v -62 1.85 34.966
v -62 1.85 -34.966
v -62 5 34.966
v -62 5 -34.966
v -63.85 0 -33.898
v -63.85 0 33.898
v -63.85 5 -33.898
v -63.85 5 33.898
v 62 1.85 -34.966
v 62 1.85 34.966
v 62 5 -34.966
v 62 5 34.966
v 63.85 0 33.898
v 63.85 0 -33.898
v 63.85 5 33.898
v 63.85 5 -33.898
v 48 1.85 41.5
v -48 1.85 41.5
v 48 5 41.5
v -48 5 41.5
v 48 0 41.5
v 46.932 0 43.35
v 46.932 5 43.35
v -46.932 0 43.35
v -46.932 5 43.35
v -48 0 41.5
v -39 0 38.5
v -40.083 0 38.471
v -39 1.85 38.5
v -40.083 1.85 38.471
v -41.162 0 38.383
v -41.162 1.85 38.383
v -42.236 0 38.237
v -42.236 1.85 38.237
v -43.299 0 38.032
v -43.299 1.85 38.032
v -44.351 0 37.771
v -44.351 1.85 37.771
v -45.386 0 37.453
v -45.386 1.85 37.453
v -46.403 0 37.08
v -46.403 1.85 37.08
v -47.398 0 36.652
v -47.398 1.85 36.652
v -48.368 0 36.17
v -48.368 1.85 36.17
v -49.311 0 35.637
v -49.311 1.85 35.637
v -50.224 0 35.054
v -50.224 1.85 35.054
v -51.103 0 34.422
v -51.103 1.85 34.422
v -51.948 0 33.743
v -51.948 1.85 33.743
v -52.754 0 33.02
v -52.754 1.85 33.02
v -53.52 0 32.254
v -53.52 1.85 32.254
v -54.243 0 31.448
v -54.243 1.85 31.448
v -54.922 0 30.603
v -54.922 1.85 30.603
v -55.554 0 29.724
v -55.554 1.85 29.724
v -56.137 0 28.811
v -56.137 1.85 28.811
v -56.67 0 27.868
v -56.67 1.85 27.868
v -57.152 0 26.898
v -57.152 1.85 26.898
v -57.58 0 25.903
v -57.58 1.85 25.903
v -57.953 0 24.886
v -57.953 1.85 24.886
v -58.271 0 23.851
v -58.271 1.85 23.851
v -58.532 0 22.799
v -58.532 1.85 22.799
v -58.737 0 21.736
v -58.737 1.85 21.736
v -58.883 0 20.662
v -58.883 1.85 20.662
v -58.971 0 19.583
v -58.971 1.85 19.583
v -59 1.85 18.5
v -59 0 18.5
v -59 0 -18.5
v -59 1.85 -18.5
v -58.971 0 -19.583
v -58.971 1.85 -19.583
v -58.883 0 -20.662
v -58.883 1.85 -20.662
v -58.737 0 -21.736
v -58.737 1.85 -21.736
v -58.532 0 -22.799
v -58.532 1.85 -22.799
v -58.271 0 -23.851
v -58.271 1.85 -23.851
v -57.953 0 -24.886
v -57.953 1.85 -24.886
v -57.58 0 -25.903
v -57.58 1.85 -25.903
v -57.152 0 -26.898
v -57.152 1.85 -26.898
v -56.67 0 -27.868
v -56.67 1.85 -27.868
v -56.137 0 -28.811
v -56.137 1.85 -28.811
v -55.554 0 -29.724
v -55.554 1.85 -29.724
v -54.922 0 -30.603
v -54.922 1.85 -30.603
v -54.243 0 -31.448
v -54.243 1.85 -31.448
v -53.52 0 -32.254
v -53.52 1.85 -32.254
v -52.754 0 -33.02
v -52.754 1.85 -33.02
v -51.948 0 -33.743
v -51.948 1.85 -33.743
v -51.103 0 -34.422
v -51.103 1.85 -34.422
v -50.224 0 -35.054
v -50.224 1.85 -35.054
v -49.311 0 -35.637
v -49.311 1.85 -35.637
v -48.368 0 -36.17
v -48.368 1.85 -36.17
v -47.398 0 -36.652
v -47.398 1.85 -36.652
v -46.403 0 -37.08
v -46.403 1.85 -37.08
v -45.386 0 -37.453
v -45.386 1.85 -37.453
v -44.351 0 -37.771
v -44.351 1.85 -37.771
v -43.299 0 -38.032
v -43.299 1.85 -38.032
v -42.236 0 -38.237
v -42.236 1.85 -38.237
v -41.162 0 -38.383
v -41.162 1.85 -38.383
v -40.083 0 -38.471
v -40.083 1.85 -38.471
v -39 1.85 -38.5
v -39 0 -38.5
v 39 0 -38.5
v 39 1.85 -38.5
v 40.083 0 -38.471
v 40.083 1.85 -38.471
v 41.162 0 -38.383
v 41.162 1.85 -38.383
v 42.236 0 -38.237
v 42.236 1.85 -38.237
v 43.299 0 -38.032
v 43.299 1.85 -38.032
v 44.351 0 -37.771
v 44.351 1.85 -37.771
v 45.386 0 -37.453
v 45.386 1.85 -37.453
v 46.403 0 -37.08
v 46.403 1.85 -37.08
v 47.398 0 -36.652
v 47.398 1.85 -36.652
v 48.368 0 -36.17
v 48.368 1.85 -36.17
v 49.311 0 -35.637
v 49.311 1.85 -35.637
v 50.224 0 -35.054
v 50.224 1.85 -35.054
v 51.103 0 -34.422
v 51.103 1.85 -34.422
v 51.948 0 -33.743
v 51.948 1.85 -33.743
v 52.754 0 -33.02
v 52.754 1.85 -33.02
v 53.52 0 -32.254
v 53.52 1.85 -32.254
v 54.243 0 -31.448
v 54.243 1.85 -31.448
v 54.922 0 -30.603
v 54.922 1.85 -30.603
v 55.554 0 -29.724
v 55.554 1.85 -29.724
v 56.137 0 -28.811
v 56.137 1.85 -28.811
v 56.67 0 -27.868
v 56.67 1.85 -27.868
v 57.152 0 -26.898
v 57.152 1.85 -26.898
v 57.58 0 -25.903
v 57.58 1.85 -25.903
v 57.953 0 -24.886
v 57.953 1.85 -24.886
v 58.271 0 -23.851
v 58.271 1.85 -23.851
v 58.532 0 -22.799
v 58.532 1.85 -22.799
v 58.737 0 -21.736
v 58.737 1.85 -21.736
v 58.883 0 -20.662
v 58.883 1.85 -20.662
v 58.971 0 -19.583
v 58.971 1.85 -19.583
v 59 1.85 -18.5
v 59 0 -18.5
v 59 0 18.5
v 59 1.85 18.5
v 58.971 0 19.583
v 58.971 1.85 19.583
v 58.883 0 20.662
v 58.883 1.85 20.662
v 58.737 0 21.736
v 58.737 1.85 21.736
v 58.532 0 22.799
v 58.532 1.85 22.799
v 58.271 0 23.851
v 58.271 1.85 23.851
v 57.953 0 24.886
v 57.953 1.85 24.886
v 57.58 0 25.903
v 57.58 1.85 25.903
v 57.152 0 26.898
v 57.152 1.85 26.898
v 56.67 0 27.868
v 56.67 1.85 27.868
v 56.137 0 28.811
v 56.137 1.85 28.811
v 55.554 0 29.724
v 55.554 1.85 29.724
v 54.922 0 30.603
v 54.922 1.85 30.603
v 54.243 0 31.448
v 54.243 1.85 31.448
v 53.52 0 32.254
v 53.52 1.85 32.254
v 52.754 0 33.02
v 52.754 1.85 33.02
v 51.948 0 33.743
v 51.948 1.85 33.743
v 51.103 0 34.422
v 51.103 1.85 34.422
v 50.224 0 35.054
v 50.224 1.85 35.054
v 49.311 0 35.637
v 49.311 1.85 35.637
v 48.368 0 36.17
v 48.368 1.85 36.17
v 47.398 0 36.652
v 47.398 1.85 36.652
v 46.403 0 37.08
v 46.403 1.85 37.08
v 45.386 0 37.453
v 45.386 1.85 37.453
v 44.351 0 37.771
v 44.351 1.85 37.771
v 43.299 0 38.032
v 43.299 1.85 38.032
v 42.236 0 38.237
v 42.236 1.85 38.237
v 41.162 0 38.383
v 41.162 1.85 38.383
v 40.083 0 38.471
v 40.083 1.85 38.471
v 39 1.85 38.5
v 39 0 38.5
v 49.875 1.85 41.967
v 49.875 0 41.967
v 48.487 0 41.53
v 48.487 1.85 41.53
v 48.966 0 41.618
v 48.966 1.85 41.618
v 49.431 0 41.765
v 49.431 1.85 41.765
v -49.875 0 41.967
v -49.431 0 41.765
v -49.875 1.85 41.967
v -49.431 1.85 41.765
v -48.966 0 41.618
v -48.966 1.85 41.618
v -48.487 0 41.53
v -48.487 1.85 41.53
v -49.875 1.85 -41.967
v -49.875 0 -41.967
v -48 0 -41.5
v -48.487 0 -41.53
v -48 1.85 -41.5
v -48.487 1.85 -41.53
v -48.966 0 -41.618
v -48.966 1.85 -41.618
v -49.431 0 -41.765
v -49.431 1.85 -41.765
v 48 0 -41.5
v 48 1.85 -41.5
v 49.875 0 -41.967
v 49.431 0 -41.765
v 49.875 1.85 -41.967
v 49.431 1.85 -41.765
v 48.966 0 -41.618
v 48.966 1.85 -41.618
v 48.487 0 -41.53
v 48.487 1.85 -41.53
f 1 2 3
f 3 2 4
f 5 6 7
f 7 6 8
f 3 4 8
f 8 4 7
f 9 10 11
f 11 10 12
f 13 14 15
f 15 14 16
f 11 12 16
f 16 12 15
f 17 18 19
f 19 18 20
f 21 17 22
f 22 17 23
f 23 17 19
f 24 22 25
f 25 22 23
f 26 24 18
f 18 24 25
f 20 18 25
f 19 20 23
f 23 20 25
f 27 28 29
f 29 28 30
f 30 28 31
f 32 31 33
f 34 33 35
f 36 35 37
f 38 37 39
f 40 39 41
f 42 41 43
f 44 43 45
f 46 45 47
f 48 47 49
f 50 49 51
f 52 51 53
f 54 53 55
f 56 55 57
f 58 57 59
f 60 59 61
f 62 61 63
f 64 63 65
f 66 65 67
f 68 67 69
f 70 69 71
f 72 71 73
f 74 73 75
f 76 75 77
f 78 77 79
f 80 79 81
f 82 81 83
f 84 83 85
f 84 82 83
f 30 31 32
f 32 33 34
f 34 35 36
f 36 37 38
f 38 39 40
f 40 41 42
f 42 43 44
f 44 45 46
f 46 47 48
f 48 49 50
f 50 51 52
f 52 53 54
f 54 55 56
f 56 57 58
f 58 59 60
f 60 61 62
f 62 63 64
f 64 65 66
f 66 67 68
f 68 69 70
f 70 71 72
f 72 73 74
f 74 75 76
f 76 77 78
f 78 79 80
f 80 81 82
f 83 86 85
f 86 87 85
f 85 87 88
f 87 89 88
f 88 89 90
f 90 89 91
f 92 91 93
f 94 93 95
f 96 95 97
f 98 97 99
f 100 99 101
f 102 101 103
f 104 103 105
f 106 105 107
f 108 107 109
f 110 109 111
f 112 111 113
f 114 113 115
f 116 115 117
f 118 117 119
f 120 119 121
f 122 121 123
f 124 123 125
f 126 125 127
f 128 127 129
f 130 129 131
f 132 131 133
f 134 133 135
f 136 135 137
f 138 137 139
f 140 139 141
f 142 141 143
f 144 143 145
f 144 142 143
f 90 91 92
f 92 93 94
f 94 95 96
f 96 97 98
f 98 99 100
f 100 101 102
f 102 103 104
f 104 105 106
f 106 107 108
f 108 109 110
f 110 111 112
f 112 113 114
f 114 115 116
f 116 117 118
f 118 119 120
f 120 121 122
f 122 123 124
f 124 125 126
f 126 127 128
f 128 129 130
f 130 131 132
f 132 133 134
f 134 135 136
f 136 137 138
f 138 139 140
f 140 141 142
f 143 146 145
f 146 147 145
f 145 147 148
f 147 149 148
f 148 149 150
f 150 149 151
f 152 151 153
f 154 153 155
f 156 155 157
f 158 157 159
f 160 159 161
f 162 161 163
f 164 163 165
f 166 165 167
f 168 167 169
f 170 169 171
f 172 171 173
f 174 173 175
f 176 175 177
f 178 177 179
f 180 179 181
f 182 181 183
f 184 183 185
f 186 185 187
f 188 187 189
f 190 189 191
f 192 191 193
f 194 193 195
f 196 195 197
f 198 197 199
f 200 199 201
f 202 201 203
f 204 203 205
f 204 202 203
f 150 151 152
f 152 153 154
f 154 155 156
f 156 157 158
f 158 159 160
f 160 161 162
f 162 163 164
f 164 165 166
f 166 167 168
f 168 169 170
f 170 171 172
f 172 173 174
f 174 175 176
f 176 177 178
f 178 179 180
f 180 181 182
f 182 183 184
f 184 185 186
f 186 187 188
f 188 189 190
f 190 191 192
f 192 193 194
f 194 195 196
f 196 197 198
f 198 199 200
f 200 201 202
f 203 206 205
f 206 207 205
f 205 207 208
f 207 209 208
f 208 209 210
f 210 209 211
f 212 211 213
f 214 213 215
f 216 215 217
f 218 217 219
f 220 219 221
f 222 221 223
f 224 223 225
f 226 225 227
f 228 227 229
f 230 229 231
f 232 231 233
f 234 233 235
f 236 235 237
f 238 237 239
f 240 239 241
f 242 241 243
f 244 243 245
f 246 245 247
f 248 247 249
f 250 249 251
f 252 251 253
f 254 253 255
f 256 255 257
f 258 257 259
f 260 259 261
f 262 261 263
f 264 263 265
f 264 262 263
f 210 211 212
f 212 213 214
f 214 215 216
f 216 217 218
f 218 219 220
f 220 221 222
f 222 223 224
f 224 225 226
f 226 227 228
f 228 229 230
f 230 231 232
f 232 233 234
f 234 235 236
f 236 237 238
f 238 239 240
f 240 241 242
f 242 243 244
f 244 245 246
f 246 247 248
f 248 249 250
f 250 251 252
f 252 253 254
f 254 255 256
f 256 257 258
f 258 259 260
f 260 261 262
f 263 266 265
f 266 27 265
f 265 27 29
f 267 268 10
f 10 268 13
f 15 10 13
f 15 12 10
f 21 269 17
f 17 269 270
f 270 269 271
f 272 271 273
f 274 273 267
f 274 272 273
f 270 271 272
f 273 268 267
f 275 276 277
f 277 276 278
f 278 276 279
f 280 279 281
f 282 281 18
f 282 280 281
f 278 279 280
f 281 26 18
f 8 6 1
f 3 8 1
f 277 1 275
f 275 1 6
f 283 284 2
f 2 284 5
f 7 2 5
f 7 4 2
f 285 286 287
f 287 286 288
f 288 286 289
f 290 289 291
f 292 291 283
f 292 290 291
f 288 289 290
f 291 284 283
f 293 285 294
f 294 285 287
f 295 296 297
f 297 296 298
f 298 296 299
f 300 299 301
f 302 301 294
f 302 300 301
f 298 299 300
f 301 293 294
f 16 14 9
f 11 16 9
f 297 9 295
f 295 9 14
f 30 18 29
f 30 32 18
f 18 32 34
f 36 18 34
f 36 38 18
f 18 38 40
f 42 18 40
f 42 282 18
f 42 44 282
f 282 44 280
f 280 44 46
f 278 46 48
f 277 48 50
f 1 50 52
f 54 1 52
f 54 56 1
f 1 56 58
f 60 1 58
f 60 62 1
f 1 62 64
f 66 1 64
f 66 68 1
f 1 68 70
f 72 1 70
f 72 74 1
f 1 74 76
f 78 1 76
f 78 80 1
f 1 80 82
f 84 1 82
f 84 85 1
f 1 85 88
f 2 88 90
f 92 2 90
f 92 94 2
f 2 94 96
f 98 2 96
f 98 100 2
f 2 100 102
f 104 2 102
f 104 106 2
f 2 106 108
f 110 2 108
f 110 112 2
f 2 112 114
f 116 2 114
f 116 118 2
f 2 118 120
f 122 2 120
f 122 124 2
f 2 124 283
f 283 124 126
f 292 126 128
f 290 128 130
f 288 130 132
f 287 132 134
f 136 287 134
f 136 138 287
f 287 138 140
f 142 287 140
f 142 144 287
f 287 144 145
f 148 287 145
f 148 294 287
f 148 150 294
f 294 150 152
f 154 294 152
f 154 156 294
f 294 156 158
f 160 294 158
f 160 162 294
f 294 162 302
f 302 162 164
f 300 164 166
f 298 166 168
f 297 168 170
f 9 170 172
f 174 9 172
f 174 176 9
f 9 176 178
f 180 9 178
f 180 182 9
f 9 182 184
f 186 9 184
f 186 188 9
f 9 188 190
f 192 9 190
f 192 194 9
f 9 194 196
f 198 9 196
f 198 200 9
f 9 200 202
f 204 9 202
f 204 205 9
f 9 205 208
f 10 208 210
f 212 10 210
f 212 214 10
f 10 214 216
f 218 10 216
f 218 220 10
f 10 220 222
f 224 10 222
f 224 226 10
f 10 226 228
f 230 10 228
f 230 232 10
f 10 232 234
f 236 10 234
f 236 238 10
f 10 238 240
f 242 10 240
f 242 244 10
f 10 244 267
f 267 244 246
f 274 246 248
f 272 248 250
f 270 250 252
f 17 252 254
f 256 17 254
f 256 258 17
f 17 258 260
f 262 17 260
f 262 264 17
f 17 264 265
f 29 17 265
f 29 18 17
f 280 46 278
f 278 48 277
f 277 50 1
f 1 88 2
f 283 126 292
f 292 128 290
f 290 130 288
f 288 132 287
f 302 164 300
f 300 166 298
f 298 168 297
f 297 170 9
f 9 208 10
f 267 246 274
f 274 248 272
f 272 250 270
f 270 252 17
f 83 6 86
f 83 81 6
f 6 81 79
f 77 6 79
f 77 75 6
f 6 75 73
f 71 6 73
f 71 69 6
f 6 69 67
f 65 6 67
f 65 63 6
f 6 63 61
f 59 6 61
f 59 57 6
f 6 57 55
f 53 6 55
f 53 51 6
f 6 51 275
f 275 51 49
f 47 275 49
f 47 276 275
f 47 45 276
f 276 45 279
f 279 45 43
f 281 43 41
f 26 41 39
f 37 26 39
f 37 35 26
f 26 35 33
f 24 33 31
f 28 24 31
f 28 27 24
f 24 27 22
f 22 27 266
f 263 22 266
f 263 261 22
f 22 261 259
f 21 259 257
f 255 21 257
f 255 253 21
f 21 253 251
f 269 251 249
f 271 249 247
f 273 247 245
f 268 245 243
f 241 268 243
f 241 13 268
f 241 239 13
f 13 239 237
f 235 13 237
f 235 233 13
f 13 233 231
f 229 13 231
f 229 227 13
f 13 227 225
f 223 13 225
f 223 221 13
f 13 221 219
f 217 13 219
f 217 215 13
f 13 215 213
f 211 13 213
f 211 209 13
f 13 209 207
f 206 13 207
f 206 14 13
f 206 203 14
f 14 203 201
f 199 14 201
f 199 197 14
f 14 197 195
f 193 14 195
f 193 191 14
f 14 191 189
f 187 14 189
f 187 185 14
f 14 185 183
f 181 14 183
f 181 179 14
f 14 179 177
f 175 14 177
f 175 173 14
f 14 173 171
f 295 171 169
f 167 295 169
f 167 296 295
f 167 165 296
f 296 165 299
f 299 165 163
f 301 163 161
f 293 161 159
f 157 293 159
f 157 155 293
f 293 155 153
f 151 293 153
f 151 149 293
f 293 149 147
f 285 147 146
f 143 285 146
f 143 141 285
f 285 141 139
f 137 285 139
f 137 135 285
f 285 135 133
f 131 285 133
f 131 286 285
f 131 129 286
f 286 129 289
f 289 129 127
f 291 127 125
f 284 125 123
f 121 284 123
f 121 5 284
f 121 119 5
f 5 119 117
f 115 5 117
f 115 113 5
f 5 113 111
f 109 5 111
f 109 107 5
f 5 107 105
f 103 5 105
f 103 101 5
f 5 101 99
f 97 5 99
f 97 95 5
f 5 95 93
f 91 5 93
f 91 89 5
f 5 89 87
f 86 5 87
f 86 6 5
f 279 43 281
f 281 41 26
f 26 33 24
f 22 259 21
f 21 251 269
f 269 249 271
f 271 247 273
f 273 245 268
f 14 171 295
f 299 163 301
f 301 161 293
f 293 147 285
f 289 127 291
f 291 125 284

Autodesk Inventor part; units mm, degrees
ref_plane "YZ Plane" through (0, 0, 0) normal (1, 0, 0) x (0, 1, 0)
ref_plane "XZ Plane" through (0, 0, 0) normal (0, 1, 0) x (-1, 0, 0)
ref_plane "XY Plane" through (0, 0, 0) normal (0, 0, 1) x (1, 0, 0)
sketch "Seal Outline" plane through (0, 0, 0) normal (0, 1, 0) x (-1, 0, 0)
  line L0 (-48, 41.5) -> (48, 41.5)
  line L1 (62, 34.9661) -> (62, -34.9661)
  line L2 (-62, -34.9661) -> (-62, 34.9661)
  line L3 (62, 41.5045) -> (62, 41.5)
  arc A0 (-49.8748, 41.9666) -> (-48, 41.5) centre (-48, 45.5) ccw
  arc A1 (48, 41.5) -> (49.8748, 41.9666) centre (48, 45.5) ccw
  line L4 (48, 41.5) -> (37.7809, 41.4967)
  line L5 (-49.8748, 41.9666) -> (-62, 34.9661)
  line L6 (49.8748, 41.9666) -> (62, 34.9661)
  line L7 (62, -41.5045) -> (62, -41.5)
  arc A2 (49.8748, -41.9666) -> (48, -41.5) centre (48, -45.5) ccw
  line L8 (48, -41.5) -> (37.7809, -41.4967)
  line L9 (-48, -41.5) -> (48, -41.5)
  arc A3 (-48, -41.5) -> (-49.8748, -41.9666) centre (-48, -45.5) ccw
  line L10 (-49.8748, -41.9666) -> (-62, -34.9661)
  line L11 (49.8748, -41.9666) -> (62, -34.9661)
  line L12 (-39, 38.5) -> (39, 38.5)
  line L13 (59, 18.5) -> (59, -18.5)
  line L14 (39, -38.5) -> (-39, -38.5)
  line L15 (-59, -18.5) -> (-59, 18.5)
  arc A4 (-59, -18.5) -> (-39, -38.5) centre (-39, -18.5) ccw
  arc A5 (-39, 38.5) -> (-59, 18.5) centre (-39, 18.5) ccw
  arc A6 (59, 18.5) -> (39, 38.5) centre (39, 18.5) ccw
  arc A7 (39, -38.5) -> (59, -18.5) centre (39, -18.5) ccw
  point P0 (0, 0)
  dimension "d6" = 124
  dimension "d7" = 96
  dimension "d14" = 83
  dimension "d15" = 4
  dimension "d16" = 4
  dimension "d17" = 4
  dimension "d18" = 4
  dimension "d19" = 60
  dimension "d20" = 120
  dimension "d21" = 89.982
  dimension "d22" = 89.982
  dimension "d23" = 90
  dimension "d24" = 0
  dimension "d25" = 122.5631
  dimension "d26" = 122.5631
  dimension "d27" = 62
  dimension "d28" = 62
  dimension "d29" = 61.2816
  dimension "d30" = 61.2816
  dimension "d31" = 41.4847
  dimension "d32" = 41.4847
  dimension "d33" = 41.5
  dimension "d34" = 5.6585
  dimension "d35" = 66.2216
  dimension "d36" = 24.2191
  dimension "d37" = 24.2191
  dimension "d38" = 110
  dimension "d39" = 78
  dimension "d40" = 20
  dimension "d41" = 37
  dimension "d43" = 3
  dimension "d44" = 3
extrude "Extrusion1" add sketch "Seal Outline" along normal blind 1.85
sketch "Sketch2" plane through (0, 0, 0) normal (0, -1, 0) x (1, 0, 0)
  line L0 (62, 34.9661) -> (62, -34.9661) projected
  line L1 (-48, 41.5) -> (48, 41.5) projected
  line L2 (-62, -34.9661) -> (-62, 34.9661) projected
  line L3 (-48, 41.5) -> (-46.9319, 43.35)
  line L4 (-46.9319, 43.35) -> (46.9319, 43.35)
  line L5 (46.9319, 43.35) -> (48, 41.5)
  line L6 (-62, 34.9661) -> (-63.85, 33.898)
  line L7 (-63.85, 33.898) -> (-63.85, -33.898)
  line L8 (-63.85, -33.898) -> (-62, -34.9661)
  line L9 (62, 34.9661) -> (63.85, 33.898)
  line L10 (63.85, 33.898) -> (63.85, -33.898)
  line L11 (63.85, -33.898) -> (62, -34.9661)
  point P0 (-48, -41.5)
  point P1 (48, -41.5)
  dimension "d47" = 120
  dimension "d49" = 120
  dimension "d50" = 1.85
  dimension "d51" = 120
  dimension "d55" = 120
  dimension "d57" = 1.85
  dimension "d58" = 120
  dimension "d59" = 120
  dimension "d60" = 1.85
extrude "Extrusion3" add sketch "Sketch2" against normal blind 5
equation "\"d49\" = d47"
equation "\"d51\" = d47"
equation "\"d55\" = d47"
equation "\"d57\" = d50"
equation "\"d58\" = d47"
equation "\"d59\" = d47"
equation "\"d60\" = d50"
properties part number "RubberLidSeal" material "Rubber"
